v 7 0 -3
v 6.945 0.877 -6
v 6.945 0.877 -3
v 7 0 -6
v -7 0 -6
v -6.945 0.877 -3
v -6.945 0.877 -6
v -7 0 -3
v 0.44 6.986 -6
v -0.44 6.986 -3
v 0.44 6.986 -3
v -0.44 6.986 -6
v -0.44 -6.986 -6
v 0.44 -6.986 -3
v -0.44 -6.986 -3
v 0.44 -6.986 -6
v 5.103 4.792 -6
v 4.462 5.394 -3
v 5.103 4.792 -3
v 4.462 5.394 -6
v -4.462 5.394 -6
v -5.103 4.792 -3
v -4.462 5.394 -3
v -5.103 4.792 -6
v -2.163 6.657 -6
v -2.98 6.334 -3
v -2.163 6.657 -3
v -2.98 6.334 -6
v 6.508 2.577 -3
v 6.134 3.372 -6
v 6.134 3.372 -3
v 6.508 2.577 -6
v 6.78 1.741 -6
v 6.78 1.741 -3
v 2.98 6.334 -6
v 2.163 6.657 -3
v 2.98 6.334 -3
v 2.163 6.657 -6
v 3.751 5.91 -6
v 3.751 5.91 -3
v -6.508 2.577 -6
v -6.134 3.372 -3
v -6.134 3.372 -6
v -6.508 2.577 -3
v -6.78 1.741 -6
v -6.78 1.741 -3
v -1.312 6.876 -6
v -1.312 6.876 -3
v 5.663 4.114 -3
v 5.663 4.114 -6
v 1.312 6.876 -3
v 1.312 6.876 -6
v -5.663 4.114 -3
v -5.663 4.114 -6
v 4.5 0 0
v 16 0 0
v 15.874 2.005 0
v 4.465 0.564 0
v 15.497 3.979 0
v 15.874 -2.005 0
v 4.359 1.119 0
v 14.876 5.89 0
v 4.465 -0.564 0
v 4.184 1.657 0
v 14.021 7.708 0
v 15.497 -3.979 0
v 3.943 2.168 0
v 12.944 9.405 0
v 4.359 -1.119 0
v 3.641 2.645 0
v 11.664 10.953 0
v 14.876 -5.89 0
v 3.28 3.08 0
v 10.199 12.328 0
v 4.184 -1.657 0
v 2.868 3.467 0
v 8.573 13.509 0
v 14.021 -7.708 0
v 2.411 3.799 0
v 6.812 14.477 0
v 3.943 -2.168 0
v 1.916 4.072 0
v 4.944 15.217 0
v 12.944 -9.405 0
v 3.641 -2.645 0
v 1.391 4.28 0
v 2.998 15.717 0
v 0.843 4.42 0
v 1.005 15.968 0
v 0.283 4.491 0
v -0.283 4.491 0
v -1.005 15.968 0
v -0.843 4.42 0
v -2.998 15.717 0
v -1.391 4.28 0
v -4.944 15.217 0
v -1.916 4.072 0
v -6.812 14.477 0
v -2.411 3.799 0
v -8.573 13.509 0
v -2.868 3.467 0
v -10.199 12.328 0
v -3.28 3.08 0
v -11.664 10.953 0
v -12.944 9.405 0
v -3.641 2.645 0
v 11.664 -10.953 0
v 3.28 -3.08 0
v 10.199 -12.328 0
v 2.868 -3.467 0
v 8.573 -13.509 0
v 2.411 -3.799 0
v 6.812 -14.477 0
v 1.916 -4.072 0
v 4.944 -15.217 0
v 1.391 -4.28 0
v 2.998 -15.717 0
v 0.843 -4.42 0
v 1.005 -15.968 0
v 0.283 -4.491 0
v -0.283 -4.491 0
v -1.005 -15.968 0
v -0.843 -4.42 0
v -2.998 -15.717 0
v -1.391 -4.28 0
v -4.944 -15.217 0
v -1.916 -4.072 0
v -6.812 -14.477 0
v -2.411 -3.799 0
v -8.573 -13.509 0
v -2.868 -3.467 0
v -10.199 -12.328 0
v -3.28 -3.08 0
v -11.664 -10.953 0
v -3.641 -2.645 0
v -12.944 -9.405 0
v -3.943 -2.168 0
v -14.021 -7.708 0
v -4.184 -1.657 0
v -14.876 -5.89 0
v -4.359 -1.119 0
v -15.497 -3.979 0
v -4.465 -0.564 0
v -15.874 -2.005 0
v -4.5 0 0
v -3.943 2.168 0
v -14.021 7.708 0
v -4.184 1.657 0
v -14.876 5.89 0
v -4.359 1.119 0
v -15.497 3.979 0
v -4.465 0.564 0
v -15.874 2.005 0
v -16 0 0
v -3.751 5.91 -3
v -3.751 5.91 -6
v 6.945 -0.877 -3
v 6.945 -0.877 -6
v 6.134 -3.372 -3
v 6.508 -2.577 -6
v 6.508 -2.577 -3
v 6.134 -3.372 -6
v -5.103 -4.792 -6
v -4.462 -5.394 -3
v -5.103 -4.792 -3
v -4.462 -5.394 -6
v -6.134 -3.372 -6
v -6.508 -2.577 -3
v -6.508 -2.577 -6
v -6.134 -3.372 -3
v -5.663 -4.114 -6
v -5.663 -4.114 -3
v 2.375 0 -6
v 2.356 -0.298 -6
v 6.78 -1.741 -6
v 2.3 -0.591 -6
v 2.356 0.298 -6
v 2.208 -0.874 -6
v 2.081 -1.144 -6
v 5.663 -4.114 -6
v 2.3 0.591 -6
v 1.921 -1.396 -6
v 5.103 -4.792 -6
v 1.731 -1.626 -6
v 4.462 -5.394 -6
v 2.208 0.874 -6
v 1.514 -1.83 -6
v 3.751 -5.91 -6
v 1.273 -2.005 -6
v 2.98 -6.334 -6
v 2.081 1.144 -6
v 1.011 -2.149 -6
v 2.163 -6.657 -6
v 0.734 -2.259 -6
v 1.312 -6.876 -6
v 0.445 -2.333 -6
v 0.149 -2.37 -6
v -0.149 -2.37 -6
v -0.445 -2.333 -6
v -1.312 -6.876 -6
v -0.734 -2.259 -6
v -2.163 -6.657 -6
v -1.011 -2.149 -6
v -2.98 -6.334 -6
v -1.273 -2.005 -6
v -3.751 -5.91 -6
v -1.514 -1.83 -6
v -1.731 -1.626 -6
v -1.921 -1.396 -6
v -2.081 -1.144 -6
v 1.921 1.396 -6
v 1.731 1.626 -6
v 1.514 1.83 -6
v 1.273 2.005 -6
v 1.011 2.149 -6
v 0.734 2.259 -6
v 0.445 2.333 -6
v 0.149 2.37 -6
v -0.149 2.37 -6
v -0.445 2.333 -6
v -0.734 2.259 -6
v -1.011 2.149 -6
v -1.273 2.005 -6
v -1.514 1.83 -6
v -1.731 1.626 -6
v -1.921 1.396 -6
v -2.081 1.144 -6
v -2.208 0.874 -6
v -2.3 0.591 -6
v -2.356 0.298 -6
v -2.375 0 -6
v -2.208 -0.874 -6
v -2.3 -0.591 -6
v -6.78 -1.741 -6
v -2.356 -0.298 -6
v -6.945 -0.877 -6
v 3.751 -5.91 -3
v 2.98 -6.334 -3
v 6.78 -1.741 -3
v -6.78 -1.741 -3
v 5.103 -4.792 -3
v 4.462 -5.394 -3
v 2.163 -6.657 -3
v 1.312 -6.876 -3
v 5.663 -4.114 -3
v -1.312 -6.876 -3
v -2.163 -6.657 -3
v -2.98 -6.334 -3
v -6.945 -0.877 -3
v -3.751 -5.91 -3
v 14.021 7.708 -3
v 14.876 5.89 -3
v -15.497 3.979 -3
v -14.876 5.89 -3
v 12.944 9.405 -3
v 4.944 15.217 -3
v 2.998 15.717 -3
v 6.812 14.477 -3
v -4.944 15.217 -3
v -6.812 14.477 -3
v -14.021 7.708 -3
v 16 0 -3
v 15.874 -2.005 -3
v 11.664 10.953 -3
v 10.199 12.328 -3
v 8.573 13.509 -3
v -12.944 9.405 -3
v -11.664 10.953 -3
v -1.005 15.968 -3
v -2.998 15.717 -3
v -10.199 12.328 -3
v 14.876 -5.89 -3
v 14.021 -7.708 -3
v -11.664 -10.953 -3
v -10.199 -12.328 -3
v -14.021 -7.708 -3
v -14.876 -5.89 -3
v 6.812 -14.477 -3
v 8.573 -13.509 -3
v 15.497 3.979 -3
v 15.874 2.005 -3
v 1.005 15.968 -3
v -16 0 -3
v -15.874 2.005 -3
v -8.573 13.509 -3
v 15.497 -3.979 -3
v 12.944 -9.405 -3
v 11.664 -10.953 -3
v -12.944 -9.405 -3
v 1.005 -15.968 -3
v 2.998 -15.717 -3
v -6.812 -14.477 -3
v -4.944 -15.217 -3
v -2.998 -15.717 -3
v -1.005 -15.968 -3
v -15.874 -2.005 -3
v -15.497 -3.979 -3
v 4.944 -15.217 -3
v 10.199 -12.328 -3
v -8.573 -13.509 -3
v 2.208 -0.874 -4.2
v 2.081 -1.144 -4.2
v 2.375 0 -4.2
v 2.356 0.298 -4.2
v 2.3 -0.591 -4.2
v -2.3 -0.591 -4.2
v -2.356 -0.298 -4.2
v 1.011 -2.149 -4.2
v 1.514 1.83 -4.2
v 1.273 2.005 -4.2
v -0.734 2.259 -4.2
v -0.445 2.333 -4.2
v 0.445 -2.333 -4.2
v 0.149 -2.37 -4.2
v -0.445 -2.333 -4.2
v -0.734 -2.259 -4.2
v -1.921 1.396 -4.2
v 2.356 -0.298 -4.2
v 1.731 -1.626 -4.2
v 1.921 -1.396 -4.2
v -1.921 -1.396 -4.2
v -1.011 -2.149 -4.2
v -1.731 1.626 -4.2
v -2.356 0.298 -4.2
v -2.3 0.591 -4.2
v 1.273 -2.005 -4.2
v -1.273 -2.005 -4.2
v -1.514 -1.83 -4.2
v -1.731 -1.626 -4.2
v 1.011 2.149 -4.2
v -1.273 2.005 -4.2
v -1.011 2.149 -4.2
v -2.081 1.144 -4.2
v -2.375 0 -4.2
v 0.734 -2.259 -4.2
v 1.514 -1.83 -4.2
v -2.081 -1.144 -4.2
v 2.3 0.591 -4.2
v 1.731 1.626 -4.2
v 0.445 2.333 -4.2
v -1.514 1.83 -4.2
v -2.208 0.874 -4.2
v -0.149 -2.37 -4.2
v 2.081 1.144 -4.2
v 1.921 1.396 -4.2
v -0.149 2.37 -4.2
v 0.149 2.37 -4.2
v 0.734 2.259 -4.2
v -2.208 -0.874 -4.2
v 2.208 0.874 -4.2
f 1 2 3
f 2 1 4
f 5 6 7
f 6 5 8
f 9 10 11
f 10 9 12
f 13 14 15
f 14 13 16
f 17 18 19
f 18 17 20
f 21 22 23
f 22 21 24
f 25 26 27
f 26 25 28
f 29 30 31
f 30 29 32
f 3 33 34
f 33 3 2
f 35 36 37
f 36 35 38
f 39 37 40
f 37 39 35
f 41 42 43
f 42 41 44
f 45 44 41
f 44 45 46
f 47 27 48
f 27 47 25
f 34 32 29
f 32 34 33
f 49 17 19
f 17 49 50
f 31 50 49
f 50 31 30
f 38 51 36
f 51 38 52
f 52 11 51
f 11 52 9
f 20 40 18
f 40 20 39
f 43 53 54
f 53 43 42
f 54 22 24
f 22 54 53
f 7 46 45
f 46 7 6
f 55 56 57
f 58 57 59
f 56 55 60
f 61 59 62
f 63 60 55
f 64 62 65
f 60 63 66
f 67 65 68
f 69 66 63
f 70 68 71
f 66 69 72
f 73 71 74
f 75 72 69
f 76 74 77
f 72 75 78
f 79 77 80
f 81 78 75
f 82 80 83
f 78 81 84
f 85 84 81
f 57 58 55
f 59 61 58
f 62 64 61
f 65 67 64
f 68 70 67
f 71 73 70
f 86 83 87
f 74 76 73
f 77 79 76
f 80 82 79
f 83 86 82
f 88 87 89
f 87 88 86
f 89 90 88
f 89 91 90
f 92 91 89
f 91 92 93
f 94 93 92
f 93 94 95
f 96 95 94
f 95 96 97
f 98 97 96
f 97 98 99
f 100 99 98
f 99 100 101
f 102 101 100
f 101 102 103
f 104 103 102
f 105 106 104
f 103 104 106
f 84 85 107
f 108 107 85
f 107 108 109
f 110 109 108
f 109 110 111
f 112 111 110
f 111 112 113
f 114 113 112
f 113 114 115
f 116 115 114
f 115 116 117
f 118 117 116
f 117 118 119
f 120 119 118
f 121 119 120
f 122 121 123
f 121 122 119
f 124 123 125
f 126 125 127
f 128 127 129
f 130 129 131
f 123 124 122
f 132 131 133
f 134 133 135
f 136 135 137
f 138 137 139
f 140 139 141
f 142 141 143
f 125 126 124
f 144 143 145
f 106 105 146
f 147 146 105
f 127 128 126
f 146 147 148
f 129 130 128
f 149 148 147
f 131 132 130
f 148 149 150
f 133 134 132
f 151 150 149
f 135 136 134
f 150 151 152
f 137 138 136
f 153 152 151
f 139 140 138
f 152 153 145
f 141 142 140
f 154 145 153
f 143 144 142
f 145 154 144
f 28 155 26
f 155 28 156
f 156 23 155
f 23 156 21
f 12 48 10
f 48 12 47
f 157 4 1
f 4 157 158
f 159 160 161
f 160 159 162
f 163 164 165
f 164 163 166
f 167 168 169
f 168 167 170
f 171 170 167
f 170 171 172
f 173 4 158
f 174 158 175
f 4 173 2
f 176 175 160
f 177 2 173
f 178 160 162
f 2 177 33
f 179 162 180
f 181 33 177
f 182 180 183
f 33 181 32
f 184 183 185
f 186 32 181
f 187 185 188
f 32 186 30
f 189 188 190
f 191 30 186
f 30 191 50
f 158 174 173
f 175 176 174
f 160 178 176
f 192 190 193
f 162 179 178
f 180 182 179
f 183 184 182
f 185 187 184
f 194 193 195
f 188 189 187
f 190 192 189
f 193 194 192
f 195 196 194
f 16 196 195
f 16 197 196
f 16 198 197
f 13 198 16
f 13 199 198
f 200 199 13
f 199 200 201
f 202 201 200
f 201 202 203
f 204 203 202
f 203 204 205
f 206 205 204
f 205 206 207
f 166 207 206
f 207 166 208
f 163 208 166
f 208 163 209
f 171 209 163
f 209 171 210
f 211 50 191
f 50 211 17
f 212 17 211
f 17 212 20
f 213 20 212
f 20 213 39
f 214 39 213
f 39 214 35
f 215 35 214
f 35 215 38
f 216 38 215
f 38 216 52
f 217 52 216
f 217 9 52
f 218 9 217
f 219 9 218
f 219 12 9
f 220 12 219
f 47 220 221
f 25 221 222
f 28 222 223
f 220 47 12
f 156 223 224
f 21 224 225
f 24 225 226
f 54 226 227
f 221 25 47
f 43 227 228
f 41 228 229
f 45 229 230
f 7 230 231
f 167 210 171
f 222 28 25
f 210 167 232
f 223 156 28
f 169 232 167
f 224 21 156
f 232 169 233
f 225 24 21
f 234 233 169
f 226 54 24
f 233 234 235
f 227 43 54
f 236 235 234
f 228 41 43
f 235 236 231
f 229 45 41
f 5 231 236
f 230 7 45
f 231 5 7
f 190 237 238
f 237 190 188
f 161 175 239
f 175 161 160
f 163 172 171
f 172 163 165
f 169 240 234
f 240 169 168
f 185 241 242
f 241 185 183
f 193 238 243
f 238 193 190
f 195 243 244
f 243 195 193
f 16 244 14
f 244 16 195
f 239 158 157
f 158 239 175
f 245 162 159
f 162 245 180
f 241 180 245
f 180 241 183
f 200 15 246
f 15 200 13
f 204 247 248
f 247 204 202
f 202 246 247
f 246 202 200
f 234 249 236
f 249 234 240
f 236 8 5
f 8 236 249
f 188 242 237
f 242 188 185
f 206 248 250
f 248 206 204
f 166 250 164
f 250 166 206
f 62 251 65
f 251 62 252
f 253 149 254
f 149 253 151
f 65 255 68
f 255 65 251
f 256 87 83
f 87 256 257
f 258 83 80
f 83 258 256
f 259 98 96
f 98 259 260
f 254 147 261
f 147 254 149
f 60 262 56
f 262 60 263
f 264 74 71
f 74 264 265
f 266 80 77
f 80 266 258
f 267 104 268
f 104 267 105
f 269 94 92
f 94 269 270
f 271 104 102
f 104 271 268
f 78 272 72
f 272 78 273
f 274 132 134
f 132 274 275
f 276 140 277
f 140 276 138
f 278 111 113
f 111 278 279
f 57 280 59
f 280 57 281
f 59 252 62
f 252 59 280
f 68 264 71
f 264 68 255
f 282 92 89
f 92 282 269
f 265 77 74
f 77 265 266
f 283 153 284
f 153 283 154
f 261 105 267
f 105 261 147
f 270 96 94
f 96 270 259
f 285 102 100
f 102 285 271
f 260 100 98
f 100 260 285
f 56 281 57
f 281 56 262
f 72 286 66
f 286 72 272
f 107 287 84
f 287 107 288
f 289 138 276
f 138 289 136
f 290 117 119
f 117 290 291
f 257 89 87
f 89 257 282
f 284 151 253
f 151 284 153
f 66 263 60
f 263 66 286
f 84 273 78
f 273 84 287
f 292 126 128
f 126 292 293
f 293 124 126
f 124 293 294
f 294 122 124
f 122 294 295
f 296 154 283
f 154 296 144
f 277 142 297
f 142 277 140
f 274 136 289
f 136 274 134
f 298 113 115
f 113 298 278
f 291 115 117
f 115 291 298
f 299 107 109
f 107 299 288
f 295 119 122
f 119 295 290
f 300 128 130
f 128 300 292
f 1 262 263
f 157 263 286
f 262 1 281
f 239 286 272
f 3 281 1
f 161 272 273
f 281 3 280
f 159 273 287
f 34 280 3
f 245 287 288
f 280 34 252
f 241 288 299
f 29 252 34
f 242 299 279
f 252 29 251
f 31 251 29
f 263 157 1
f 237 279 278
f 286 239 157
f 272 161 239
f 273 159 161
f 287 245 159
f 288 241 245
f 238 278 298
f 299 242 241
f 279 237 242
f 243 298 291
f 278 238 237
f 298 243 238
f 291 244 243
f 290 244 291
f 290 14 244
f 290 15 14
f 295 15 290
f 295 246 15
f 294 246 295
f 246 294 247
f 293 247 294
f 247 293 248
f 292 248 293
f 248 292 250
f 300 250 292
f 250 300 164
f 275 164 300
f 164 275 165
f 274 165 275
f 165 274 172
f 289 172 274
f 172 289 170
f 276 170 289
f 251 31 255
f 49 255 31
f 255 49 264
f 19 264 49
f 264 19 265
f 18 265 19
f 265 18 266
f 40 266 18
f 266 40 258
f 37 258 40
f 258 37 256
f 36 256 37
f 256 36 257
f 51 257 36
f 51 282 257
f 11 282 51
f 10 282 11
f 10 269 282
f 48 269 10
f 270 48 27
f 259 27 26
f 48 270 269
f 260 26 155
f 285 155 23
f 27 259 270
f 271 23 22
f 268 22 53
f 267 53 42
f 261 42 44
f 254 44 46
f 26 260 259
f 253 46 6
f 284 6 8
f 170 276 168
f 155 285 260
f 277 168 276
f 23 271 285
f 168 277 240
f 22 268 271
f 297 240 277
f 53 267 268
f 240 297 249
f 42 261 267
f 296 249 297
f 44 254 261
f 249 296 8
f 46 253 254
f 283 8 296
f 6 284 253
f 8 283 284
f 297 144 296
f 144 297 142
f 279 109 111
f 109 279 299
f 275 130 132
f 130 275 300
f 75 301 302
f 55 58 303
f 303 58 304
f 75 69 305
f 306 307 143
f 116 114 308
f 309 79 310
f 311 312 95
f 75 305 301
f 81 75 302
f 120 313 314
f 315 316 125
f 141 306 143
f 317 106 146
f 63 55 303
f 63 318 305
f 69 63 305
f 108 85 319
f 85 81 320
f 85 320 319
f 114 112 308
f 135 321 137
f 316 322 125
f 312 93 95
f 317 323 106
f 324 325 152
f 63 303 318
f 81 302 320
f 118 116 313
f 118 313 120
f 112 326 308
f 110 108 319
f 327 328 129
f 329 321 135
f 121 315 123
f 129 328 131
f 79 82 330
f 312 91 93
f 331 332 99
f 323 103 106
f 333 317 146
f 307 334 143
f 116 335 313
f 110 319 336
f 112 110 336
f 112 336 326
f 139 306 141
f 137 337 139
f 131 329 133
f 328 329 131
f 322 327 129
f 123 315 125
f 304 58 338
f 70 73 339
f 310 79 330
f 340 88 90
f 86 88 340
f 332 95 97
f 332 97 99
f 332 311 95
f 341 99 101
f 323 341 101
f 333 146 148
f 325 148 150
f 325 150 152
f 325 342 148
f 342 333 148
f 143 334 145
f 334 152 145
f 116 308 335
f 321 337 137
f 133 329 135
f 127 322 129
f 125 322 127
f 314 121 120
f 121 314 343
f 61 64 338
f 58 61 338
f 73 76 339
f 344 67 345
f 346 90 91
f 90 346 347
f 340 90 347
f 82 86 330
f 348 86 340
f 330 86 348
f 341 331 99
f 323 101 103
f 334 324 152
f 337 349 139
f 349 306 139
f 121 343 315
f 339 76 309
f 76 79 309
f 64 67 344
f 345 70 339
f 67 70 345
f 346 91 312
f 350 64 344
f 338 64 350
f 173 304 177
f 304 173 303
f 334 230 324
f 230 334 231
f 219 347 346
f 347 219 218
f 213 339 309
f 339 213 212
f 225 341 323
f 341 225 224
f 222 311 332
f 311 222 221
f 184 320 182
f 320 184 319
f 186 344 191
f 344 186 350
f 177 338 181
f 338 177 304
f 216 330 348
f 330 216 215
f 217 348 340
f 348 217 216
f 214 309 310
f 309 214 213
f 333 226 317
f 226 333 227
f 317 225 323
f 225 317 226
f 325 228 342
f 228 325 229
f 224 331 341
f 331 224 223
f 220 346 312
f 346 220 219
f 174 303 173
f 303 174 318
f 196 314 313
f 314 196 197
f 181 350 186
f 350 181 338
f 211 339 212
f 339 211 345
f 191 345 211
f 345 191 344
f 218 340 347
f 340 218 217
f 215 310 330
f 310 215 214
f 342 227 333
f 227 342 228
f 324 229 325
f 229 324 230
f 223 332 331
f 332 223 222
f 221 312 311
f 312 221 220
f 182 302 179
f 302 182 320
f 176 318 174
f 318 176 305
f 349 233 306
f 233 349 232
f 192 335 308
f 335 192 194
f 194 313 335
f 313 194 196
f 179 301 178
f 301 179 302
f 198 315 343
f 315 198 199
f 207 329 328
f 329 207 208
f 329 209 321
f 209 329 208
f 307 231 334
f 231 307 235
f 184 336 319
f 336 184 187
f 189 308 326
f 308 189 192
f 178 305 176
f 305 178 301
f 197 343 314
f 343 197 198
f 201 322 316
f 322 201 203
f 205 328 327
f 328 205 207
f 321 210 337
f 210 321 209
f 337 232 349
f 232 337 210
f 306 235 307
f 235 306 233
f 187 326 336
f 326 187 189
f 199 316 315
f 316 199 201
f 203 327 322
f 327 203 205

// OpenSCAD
$fn = 50;


difference() {
	union() {
		translate(v = [0, 0, -6.0000000000]) {
			cylinder(h = 6, r = 7.0000000000);
		}
		translate(v = [0, 0, -3.0000000000]) {
			cylinder(h = 3, r = 16.0000000000);
		}
	}
	union() {
		translate(v = [0, 0, 0]) {
			rotate(a = [0, 0, 0]) {
				difference() {
					union() {
						#translate(v = [0, 0, -6.0000000000]) {
							cylinder(h = 6, r = 2.2500000000);
						}
						#translate(v = [0, 0, -4.2000000000]) {
							cylinder(h = 4.2000000000, r1 = 2.3750000000, r2 = 4.5000000000);
						}
						#translate(v = [0, 0, -6.0000000000]) {
							cylinder(h = 6, r = 2.3750000000);
						}
						#translate(v = [0, 0, -6.0000000000]) {
							cylinder(h = 6, r = 2.2500000000);
						}
					}
					union();
				}
			}
		}
	}
}
